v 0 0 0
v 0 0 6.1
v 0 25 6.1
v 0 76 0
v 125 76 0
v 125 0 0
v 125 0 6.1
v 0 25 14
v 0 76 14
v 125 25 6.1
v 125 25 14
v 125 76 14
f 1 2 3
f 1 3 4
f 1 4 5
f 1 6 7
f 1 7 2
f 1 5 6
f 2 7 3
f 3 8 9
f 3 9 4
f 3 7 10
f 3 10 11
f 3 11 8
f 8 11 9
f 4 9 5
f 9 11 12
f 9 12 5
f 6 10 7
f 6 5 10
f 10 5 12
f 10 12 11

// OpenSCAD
cube([125, 25, 6.1]);

//180-12
translate([0, 25, 0]){

	#cube([125, 51, 14]);

}
